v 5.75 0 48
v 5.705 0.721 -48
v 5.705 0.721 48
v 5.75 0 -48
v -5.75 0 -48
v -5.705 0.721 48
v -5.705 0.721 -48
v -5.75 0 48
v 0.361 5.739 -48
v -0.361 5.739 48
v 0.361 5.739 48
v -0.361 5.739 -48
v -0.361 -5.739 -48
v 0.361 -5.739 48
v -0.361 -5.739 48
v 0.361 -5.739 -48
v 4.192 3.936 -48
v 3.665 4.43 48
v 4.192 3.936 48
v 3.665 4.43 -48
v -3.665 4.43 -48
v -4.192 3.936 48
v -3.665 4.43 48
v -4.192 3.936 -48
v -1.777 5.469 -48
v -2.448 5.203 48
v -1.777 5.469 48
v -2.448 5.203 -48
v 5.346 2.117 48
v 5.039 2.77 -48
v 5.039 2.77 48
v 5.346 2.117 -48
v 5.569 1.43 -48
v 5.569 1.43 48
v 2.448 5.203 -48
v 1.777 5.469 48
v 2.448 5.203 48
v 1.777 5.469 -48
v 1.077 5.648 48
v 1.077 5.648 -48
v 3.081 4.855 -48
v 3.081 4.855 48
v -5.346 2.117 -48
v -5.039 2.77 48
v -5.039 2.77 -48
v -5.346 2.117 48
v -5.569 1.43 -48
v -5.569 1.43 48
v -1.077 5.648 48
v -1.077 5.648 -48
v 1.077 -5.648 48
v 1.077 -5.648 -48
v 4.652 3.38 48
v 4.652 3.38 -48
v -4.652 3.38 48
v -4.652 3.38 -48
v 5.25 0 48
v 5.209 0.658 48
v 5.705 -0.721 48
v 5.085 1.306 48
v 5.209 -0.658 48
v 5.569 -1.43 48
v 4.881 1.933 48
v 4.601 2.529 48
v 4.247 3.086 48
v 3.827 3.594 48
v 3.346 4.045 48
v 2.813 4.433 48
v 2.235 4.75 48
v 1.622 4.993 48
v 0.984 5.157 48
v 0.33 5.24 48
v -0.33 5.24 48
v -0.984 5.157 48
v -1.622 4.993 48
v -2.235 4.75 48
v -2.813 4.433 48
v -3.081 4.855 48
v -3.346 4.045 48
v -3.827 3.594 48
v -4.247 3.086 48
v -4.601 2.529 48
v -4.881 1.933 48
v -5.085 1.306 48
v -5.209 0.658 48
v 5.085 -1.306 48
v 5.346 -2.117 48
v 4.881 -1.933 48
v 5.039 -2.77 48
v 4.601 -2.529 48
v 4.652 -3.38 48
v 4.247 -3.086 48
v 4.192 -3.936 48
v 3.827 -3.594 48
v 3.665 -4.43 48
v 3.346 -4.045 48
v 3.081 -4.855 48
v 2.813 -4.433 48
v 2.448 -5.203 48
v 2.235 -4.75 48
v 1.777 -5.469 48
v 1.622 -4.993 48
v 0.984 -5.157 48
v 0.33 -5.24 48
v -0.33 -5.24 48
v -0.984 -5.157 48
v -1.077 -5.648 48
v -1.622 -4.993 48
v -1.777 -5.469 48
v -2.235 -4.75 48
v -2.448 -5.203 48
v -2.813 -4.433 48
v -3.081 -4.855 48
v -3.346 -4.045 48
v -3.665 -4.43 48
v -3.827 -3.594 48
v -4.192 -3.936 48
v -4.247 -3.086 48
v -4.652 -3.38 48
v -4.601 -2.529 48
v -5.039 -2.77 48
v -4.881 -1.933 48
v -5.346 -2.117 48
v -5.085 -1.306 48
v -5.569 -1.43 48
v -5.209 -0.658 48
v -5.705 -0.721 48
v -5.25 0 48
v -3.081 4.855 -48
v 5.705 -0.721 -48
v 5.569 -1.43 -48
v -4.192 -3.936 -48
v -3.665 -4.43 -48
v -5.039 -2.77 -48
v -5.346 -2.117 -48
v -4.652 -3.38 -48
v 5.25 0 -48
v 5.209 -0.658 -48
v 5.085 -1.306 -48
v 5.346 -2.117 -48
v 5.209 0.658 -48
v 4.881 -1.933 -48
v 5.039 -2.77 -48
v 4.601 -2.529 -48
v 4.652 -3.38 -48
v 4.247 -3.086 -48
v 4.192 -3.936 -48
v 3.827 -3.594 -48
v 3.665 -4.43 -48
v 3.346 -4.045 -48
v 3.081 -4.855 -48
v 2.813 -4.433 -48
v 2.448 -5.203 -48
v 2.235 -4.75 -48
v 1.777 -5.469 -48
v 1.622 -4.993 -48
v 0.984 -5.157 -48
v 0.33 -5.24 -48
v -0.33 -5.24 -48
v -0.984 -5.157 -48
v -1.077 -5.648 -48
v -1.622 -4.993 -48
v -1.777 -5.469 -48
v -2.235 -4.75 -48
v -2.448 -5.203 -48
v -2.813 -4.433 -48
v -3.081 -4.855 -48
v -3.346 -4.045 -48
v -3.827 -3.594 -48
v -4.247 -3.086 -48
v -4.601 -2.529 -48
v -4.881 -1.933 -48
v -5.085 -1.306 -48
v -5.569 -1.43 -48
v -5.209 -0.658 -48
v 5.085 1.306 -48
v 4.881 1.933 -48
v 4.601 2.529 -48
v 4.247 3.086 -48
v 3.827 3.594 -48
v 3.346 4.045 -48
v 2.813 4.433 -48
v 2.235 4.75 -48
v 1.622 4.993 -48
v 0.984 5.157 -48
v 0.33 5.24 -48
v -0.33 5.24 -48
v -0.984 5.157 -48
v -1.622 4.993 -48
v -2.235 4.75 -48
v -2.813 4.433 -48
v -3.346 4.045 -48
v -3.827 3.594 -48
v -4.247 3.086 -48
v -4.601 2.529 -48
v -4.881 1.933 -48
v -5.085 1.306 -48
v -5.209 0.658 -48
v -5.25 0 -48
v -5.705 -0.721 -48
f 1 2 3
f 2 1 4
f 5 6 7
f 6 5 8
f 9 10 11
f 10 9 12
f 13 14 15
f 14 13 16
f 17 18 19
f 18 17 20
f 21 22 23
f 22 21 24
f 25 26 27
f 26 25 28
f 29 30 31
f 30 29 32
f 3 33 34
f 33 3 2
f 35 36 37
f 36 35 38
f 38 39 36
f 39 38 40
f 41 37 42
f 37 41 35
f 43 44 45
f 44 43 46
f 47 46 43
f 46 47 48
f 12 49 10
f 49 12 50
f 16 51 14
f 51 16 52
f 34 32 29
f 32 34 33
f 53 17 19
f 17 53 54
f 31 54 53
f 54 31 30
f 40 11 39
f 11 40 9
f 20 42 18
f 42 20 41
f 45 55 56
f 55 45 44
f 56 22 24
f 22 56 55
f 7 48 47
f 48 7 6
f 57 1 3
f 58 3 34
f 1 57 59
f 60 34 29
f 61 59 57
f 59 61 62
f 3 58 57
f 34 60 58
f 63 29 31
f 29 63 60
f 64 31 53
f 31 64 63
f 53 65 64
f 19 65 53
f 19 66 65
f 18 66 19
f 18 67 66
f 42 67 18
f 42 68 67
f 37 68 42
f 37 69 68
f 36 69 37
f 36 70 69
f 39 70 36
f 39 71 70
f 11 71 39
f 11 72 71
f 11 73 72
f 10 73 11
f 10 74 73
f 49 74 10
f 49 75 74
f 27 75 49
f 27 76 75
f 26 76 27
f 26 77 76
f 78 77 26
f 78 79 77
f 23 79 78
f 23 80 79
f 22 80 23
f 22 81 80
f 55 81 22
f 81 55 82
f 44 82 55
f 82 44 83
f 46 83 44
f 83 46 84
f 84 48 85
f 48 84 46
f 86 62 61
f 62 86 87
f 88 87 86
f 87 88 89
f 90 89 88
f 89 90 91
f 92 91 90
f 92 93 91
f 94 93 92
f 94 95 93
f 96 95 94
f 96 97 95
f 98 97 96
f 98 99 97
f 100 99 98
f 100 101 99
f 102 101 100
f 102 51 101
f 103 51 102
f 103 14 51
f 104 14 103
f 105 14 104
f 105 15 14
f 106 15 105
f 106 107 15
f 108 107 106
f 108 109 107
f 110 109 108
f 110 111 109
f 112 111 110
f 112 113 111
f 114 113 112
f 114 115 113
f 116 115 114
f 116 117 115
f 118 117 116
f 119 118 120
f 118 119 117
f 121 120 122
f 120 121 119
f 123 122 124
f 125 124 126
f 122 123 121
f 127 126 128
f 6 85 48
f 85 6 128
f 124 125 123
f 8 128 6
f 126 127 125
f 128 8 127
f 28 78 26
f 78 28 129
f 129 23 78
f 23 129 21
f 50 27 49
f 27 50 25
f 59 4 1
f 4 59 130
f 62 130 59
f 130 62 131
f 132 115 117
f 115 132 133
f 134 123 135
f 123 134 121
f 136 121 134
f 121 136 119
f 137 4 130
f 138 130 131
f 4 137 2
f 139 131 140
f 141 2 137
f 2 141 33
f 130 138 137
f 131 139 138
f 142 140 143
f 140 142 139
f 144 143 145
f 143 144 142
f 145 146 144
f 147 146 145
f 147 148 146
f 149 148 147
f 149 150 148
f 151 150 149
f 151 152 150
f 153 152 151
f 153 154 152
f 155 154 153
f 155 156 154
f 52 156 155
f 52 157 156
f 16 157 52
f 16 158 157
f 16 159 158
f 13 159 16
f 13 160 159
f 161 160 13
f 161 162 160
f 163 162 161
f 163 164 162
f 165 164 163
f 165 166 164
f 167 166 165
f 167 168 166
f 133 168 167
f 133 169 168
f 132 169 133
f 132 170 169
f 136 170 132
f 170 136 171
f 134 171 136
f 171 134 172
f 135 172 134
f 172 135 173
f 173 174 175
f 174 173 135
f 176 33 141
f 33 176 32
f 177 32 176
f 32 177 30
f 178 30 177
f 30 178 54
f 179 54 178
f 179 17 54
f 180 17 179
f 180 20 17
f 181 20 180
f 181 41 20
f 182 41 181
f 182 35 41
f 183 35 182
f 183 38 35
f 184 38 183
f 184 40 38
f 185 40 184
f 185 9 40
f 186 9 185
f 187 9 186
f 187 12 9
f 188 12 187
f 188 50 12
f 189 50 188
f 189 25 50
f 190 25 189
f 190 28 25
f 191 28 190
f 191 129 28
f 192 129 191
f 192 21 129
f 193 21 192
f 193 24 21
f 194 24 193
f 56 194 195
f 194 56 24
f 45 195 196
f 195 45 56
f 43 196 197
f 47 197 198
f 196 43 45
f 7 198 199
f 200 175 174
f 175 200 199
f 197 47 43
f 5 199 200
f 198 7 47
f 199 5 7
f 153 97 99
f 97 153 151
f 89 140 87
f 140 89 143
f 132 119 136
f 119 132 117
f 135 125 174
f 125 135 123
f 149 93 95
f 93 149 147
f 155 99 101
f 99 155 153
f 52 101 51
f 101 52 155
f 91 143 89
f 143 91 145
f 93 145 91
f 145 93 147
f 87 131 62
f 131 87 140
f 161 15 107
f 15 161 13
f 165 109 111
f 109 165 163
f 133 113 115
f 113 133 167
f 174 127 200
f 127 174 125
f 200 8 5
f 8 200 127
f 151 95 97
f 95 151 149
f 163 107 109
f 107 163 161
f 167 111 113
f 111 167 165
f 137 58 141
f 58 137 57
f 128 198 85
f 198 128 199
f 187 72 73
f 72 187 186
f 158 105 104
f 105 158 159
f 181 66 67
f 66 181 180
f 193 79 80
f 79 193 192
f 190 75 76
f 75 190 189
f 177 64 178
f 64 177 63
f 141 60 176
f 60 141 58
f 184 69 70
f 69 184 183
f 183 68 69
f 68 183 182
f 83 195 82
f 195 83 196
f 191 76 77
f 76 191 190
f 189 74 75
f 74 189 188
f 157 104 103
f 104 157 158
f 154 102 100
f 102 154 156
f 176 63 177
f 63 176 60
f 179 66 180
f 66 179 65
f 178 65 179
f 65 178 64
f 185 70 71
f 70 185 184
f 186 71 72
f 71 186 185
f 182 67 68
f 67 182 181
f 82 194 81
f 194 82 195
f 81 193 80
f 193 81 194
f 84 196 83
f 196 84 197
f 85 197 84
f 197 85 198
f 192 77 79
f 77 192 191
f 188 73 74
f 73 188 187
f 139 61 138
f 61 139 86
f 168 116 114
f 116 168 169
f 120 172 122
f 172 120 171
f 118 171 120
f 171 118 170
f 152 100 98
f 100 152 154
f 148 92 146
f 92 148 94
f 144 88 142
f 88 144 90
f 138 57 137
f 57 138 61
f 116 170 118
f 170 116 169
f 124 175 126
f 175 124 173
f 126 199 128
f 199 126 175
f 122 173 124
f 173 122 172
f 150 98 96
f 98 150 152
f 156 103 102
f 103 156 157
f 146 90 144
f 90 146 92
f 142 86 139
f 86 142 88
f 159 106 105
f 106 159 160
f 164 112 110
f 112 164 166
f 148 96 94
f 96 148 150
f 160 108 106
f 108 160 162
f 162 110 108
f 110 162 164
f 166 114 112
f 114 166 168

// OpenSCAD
$fn = 50;


difference() {
	union() {
		translate(v = [0, 0, -48.0000000000]) {
			cylinder(h = 96, r = 5.7500000000);
		}
	}
	union() {
		translate(v = [0, 0, -100.0000000000]) {
			cylinder(h = 200, r = 5.2500000000);
		}
	}
}
